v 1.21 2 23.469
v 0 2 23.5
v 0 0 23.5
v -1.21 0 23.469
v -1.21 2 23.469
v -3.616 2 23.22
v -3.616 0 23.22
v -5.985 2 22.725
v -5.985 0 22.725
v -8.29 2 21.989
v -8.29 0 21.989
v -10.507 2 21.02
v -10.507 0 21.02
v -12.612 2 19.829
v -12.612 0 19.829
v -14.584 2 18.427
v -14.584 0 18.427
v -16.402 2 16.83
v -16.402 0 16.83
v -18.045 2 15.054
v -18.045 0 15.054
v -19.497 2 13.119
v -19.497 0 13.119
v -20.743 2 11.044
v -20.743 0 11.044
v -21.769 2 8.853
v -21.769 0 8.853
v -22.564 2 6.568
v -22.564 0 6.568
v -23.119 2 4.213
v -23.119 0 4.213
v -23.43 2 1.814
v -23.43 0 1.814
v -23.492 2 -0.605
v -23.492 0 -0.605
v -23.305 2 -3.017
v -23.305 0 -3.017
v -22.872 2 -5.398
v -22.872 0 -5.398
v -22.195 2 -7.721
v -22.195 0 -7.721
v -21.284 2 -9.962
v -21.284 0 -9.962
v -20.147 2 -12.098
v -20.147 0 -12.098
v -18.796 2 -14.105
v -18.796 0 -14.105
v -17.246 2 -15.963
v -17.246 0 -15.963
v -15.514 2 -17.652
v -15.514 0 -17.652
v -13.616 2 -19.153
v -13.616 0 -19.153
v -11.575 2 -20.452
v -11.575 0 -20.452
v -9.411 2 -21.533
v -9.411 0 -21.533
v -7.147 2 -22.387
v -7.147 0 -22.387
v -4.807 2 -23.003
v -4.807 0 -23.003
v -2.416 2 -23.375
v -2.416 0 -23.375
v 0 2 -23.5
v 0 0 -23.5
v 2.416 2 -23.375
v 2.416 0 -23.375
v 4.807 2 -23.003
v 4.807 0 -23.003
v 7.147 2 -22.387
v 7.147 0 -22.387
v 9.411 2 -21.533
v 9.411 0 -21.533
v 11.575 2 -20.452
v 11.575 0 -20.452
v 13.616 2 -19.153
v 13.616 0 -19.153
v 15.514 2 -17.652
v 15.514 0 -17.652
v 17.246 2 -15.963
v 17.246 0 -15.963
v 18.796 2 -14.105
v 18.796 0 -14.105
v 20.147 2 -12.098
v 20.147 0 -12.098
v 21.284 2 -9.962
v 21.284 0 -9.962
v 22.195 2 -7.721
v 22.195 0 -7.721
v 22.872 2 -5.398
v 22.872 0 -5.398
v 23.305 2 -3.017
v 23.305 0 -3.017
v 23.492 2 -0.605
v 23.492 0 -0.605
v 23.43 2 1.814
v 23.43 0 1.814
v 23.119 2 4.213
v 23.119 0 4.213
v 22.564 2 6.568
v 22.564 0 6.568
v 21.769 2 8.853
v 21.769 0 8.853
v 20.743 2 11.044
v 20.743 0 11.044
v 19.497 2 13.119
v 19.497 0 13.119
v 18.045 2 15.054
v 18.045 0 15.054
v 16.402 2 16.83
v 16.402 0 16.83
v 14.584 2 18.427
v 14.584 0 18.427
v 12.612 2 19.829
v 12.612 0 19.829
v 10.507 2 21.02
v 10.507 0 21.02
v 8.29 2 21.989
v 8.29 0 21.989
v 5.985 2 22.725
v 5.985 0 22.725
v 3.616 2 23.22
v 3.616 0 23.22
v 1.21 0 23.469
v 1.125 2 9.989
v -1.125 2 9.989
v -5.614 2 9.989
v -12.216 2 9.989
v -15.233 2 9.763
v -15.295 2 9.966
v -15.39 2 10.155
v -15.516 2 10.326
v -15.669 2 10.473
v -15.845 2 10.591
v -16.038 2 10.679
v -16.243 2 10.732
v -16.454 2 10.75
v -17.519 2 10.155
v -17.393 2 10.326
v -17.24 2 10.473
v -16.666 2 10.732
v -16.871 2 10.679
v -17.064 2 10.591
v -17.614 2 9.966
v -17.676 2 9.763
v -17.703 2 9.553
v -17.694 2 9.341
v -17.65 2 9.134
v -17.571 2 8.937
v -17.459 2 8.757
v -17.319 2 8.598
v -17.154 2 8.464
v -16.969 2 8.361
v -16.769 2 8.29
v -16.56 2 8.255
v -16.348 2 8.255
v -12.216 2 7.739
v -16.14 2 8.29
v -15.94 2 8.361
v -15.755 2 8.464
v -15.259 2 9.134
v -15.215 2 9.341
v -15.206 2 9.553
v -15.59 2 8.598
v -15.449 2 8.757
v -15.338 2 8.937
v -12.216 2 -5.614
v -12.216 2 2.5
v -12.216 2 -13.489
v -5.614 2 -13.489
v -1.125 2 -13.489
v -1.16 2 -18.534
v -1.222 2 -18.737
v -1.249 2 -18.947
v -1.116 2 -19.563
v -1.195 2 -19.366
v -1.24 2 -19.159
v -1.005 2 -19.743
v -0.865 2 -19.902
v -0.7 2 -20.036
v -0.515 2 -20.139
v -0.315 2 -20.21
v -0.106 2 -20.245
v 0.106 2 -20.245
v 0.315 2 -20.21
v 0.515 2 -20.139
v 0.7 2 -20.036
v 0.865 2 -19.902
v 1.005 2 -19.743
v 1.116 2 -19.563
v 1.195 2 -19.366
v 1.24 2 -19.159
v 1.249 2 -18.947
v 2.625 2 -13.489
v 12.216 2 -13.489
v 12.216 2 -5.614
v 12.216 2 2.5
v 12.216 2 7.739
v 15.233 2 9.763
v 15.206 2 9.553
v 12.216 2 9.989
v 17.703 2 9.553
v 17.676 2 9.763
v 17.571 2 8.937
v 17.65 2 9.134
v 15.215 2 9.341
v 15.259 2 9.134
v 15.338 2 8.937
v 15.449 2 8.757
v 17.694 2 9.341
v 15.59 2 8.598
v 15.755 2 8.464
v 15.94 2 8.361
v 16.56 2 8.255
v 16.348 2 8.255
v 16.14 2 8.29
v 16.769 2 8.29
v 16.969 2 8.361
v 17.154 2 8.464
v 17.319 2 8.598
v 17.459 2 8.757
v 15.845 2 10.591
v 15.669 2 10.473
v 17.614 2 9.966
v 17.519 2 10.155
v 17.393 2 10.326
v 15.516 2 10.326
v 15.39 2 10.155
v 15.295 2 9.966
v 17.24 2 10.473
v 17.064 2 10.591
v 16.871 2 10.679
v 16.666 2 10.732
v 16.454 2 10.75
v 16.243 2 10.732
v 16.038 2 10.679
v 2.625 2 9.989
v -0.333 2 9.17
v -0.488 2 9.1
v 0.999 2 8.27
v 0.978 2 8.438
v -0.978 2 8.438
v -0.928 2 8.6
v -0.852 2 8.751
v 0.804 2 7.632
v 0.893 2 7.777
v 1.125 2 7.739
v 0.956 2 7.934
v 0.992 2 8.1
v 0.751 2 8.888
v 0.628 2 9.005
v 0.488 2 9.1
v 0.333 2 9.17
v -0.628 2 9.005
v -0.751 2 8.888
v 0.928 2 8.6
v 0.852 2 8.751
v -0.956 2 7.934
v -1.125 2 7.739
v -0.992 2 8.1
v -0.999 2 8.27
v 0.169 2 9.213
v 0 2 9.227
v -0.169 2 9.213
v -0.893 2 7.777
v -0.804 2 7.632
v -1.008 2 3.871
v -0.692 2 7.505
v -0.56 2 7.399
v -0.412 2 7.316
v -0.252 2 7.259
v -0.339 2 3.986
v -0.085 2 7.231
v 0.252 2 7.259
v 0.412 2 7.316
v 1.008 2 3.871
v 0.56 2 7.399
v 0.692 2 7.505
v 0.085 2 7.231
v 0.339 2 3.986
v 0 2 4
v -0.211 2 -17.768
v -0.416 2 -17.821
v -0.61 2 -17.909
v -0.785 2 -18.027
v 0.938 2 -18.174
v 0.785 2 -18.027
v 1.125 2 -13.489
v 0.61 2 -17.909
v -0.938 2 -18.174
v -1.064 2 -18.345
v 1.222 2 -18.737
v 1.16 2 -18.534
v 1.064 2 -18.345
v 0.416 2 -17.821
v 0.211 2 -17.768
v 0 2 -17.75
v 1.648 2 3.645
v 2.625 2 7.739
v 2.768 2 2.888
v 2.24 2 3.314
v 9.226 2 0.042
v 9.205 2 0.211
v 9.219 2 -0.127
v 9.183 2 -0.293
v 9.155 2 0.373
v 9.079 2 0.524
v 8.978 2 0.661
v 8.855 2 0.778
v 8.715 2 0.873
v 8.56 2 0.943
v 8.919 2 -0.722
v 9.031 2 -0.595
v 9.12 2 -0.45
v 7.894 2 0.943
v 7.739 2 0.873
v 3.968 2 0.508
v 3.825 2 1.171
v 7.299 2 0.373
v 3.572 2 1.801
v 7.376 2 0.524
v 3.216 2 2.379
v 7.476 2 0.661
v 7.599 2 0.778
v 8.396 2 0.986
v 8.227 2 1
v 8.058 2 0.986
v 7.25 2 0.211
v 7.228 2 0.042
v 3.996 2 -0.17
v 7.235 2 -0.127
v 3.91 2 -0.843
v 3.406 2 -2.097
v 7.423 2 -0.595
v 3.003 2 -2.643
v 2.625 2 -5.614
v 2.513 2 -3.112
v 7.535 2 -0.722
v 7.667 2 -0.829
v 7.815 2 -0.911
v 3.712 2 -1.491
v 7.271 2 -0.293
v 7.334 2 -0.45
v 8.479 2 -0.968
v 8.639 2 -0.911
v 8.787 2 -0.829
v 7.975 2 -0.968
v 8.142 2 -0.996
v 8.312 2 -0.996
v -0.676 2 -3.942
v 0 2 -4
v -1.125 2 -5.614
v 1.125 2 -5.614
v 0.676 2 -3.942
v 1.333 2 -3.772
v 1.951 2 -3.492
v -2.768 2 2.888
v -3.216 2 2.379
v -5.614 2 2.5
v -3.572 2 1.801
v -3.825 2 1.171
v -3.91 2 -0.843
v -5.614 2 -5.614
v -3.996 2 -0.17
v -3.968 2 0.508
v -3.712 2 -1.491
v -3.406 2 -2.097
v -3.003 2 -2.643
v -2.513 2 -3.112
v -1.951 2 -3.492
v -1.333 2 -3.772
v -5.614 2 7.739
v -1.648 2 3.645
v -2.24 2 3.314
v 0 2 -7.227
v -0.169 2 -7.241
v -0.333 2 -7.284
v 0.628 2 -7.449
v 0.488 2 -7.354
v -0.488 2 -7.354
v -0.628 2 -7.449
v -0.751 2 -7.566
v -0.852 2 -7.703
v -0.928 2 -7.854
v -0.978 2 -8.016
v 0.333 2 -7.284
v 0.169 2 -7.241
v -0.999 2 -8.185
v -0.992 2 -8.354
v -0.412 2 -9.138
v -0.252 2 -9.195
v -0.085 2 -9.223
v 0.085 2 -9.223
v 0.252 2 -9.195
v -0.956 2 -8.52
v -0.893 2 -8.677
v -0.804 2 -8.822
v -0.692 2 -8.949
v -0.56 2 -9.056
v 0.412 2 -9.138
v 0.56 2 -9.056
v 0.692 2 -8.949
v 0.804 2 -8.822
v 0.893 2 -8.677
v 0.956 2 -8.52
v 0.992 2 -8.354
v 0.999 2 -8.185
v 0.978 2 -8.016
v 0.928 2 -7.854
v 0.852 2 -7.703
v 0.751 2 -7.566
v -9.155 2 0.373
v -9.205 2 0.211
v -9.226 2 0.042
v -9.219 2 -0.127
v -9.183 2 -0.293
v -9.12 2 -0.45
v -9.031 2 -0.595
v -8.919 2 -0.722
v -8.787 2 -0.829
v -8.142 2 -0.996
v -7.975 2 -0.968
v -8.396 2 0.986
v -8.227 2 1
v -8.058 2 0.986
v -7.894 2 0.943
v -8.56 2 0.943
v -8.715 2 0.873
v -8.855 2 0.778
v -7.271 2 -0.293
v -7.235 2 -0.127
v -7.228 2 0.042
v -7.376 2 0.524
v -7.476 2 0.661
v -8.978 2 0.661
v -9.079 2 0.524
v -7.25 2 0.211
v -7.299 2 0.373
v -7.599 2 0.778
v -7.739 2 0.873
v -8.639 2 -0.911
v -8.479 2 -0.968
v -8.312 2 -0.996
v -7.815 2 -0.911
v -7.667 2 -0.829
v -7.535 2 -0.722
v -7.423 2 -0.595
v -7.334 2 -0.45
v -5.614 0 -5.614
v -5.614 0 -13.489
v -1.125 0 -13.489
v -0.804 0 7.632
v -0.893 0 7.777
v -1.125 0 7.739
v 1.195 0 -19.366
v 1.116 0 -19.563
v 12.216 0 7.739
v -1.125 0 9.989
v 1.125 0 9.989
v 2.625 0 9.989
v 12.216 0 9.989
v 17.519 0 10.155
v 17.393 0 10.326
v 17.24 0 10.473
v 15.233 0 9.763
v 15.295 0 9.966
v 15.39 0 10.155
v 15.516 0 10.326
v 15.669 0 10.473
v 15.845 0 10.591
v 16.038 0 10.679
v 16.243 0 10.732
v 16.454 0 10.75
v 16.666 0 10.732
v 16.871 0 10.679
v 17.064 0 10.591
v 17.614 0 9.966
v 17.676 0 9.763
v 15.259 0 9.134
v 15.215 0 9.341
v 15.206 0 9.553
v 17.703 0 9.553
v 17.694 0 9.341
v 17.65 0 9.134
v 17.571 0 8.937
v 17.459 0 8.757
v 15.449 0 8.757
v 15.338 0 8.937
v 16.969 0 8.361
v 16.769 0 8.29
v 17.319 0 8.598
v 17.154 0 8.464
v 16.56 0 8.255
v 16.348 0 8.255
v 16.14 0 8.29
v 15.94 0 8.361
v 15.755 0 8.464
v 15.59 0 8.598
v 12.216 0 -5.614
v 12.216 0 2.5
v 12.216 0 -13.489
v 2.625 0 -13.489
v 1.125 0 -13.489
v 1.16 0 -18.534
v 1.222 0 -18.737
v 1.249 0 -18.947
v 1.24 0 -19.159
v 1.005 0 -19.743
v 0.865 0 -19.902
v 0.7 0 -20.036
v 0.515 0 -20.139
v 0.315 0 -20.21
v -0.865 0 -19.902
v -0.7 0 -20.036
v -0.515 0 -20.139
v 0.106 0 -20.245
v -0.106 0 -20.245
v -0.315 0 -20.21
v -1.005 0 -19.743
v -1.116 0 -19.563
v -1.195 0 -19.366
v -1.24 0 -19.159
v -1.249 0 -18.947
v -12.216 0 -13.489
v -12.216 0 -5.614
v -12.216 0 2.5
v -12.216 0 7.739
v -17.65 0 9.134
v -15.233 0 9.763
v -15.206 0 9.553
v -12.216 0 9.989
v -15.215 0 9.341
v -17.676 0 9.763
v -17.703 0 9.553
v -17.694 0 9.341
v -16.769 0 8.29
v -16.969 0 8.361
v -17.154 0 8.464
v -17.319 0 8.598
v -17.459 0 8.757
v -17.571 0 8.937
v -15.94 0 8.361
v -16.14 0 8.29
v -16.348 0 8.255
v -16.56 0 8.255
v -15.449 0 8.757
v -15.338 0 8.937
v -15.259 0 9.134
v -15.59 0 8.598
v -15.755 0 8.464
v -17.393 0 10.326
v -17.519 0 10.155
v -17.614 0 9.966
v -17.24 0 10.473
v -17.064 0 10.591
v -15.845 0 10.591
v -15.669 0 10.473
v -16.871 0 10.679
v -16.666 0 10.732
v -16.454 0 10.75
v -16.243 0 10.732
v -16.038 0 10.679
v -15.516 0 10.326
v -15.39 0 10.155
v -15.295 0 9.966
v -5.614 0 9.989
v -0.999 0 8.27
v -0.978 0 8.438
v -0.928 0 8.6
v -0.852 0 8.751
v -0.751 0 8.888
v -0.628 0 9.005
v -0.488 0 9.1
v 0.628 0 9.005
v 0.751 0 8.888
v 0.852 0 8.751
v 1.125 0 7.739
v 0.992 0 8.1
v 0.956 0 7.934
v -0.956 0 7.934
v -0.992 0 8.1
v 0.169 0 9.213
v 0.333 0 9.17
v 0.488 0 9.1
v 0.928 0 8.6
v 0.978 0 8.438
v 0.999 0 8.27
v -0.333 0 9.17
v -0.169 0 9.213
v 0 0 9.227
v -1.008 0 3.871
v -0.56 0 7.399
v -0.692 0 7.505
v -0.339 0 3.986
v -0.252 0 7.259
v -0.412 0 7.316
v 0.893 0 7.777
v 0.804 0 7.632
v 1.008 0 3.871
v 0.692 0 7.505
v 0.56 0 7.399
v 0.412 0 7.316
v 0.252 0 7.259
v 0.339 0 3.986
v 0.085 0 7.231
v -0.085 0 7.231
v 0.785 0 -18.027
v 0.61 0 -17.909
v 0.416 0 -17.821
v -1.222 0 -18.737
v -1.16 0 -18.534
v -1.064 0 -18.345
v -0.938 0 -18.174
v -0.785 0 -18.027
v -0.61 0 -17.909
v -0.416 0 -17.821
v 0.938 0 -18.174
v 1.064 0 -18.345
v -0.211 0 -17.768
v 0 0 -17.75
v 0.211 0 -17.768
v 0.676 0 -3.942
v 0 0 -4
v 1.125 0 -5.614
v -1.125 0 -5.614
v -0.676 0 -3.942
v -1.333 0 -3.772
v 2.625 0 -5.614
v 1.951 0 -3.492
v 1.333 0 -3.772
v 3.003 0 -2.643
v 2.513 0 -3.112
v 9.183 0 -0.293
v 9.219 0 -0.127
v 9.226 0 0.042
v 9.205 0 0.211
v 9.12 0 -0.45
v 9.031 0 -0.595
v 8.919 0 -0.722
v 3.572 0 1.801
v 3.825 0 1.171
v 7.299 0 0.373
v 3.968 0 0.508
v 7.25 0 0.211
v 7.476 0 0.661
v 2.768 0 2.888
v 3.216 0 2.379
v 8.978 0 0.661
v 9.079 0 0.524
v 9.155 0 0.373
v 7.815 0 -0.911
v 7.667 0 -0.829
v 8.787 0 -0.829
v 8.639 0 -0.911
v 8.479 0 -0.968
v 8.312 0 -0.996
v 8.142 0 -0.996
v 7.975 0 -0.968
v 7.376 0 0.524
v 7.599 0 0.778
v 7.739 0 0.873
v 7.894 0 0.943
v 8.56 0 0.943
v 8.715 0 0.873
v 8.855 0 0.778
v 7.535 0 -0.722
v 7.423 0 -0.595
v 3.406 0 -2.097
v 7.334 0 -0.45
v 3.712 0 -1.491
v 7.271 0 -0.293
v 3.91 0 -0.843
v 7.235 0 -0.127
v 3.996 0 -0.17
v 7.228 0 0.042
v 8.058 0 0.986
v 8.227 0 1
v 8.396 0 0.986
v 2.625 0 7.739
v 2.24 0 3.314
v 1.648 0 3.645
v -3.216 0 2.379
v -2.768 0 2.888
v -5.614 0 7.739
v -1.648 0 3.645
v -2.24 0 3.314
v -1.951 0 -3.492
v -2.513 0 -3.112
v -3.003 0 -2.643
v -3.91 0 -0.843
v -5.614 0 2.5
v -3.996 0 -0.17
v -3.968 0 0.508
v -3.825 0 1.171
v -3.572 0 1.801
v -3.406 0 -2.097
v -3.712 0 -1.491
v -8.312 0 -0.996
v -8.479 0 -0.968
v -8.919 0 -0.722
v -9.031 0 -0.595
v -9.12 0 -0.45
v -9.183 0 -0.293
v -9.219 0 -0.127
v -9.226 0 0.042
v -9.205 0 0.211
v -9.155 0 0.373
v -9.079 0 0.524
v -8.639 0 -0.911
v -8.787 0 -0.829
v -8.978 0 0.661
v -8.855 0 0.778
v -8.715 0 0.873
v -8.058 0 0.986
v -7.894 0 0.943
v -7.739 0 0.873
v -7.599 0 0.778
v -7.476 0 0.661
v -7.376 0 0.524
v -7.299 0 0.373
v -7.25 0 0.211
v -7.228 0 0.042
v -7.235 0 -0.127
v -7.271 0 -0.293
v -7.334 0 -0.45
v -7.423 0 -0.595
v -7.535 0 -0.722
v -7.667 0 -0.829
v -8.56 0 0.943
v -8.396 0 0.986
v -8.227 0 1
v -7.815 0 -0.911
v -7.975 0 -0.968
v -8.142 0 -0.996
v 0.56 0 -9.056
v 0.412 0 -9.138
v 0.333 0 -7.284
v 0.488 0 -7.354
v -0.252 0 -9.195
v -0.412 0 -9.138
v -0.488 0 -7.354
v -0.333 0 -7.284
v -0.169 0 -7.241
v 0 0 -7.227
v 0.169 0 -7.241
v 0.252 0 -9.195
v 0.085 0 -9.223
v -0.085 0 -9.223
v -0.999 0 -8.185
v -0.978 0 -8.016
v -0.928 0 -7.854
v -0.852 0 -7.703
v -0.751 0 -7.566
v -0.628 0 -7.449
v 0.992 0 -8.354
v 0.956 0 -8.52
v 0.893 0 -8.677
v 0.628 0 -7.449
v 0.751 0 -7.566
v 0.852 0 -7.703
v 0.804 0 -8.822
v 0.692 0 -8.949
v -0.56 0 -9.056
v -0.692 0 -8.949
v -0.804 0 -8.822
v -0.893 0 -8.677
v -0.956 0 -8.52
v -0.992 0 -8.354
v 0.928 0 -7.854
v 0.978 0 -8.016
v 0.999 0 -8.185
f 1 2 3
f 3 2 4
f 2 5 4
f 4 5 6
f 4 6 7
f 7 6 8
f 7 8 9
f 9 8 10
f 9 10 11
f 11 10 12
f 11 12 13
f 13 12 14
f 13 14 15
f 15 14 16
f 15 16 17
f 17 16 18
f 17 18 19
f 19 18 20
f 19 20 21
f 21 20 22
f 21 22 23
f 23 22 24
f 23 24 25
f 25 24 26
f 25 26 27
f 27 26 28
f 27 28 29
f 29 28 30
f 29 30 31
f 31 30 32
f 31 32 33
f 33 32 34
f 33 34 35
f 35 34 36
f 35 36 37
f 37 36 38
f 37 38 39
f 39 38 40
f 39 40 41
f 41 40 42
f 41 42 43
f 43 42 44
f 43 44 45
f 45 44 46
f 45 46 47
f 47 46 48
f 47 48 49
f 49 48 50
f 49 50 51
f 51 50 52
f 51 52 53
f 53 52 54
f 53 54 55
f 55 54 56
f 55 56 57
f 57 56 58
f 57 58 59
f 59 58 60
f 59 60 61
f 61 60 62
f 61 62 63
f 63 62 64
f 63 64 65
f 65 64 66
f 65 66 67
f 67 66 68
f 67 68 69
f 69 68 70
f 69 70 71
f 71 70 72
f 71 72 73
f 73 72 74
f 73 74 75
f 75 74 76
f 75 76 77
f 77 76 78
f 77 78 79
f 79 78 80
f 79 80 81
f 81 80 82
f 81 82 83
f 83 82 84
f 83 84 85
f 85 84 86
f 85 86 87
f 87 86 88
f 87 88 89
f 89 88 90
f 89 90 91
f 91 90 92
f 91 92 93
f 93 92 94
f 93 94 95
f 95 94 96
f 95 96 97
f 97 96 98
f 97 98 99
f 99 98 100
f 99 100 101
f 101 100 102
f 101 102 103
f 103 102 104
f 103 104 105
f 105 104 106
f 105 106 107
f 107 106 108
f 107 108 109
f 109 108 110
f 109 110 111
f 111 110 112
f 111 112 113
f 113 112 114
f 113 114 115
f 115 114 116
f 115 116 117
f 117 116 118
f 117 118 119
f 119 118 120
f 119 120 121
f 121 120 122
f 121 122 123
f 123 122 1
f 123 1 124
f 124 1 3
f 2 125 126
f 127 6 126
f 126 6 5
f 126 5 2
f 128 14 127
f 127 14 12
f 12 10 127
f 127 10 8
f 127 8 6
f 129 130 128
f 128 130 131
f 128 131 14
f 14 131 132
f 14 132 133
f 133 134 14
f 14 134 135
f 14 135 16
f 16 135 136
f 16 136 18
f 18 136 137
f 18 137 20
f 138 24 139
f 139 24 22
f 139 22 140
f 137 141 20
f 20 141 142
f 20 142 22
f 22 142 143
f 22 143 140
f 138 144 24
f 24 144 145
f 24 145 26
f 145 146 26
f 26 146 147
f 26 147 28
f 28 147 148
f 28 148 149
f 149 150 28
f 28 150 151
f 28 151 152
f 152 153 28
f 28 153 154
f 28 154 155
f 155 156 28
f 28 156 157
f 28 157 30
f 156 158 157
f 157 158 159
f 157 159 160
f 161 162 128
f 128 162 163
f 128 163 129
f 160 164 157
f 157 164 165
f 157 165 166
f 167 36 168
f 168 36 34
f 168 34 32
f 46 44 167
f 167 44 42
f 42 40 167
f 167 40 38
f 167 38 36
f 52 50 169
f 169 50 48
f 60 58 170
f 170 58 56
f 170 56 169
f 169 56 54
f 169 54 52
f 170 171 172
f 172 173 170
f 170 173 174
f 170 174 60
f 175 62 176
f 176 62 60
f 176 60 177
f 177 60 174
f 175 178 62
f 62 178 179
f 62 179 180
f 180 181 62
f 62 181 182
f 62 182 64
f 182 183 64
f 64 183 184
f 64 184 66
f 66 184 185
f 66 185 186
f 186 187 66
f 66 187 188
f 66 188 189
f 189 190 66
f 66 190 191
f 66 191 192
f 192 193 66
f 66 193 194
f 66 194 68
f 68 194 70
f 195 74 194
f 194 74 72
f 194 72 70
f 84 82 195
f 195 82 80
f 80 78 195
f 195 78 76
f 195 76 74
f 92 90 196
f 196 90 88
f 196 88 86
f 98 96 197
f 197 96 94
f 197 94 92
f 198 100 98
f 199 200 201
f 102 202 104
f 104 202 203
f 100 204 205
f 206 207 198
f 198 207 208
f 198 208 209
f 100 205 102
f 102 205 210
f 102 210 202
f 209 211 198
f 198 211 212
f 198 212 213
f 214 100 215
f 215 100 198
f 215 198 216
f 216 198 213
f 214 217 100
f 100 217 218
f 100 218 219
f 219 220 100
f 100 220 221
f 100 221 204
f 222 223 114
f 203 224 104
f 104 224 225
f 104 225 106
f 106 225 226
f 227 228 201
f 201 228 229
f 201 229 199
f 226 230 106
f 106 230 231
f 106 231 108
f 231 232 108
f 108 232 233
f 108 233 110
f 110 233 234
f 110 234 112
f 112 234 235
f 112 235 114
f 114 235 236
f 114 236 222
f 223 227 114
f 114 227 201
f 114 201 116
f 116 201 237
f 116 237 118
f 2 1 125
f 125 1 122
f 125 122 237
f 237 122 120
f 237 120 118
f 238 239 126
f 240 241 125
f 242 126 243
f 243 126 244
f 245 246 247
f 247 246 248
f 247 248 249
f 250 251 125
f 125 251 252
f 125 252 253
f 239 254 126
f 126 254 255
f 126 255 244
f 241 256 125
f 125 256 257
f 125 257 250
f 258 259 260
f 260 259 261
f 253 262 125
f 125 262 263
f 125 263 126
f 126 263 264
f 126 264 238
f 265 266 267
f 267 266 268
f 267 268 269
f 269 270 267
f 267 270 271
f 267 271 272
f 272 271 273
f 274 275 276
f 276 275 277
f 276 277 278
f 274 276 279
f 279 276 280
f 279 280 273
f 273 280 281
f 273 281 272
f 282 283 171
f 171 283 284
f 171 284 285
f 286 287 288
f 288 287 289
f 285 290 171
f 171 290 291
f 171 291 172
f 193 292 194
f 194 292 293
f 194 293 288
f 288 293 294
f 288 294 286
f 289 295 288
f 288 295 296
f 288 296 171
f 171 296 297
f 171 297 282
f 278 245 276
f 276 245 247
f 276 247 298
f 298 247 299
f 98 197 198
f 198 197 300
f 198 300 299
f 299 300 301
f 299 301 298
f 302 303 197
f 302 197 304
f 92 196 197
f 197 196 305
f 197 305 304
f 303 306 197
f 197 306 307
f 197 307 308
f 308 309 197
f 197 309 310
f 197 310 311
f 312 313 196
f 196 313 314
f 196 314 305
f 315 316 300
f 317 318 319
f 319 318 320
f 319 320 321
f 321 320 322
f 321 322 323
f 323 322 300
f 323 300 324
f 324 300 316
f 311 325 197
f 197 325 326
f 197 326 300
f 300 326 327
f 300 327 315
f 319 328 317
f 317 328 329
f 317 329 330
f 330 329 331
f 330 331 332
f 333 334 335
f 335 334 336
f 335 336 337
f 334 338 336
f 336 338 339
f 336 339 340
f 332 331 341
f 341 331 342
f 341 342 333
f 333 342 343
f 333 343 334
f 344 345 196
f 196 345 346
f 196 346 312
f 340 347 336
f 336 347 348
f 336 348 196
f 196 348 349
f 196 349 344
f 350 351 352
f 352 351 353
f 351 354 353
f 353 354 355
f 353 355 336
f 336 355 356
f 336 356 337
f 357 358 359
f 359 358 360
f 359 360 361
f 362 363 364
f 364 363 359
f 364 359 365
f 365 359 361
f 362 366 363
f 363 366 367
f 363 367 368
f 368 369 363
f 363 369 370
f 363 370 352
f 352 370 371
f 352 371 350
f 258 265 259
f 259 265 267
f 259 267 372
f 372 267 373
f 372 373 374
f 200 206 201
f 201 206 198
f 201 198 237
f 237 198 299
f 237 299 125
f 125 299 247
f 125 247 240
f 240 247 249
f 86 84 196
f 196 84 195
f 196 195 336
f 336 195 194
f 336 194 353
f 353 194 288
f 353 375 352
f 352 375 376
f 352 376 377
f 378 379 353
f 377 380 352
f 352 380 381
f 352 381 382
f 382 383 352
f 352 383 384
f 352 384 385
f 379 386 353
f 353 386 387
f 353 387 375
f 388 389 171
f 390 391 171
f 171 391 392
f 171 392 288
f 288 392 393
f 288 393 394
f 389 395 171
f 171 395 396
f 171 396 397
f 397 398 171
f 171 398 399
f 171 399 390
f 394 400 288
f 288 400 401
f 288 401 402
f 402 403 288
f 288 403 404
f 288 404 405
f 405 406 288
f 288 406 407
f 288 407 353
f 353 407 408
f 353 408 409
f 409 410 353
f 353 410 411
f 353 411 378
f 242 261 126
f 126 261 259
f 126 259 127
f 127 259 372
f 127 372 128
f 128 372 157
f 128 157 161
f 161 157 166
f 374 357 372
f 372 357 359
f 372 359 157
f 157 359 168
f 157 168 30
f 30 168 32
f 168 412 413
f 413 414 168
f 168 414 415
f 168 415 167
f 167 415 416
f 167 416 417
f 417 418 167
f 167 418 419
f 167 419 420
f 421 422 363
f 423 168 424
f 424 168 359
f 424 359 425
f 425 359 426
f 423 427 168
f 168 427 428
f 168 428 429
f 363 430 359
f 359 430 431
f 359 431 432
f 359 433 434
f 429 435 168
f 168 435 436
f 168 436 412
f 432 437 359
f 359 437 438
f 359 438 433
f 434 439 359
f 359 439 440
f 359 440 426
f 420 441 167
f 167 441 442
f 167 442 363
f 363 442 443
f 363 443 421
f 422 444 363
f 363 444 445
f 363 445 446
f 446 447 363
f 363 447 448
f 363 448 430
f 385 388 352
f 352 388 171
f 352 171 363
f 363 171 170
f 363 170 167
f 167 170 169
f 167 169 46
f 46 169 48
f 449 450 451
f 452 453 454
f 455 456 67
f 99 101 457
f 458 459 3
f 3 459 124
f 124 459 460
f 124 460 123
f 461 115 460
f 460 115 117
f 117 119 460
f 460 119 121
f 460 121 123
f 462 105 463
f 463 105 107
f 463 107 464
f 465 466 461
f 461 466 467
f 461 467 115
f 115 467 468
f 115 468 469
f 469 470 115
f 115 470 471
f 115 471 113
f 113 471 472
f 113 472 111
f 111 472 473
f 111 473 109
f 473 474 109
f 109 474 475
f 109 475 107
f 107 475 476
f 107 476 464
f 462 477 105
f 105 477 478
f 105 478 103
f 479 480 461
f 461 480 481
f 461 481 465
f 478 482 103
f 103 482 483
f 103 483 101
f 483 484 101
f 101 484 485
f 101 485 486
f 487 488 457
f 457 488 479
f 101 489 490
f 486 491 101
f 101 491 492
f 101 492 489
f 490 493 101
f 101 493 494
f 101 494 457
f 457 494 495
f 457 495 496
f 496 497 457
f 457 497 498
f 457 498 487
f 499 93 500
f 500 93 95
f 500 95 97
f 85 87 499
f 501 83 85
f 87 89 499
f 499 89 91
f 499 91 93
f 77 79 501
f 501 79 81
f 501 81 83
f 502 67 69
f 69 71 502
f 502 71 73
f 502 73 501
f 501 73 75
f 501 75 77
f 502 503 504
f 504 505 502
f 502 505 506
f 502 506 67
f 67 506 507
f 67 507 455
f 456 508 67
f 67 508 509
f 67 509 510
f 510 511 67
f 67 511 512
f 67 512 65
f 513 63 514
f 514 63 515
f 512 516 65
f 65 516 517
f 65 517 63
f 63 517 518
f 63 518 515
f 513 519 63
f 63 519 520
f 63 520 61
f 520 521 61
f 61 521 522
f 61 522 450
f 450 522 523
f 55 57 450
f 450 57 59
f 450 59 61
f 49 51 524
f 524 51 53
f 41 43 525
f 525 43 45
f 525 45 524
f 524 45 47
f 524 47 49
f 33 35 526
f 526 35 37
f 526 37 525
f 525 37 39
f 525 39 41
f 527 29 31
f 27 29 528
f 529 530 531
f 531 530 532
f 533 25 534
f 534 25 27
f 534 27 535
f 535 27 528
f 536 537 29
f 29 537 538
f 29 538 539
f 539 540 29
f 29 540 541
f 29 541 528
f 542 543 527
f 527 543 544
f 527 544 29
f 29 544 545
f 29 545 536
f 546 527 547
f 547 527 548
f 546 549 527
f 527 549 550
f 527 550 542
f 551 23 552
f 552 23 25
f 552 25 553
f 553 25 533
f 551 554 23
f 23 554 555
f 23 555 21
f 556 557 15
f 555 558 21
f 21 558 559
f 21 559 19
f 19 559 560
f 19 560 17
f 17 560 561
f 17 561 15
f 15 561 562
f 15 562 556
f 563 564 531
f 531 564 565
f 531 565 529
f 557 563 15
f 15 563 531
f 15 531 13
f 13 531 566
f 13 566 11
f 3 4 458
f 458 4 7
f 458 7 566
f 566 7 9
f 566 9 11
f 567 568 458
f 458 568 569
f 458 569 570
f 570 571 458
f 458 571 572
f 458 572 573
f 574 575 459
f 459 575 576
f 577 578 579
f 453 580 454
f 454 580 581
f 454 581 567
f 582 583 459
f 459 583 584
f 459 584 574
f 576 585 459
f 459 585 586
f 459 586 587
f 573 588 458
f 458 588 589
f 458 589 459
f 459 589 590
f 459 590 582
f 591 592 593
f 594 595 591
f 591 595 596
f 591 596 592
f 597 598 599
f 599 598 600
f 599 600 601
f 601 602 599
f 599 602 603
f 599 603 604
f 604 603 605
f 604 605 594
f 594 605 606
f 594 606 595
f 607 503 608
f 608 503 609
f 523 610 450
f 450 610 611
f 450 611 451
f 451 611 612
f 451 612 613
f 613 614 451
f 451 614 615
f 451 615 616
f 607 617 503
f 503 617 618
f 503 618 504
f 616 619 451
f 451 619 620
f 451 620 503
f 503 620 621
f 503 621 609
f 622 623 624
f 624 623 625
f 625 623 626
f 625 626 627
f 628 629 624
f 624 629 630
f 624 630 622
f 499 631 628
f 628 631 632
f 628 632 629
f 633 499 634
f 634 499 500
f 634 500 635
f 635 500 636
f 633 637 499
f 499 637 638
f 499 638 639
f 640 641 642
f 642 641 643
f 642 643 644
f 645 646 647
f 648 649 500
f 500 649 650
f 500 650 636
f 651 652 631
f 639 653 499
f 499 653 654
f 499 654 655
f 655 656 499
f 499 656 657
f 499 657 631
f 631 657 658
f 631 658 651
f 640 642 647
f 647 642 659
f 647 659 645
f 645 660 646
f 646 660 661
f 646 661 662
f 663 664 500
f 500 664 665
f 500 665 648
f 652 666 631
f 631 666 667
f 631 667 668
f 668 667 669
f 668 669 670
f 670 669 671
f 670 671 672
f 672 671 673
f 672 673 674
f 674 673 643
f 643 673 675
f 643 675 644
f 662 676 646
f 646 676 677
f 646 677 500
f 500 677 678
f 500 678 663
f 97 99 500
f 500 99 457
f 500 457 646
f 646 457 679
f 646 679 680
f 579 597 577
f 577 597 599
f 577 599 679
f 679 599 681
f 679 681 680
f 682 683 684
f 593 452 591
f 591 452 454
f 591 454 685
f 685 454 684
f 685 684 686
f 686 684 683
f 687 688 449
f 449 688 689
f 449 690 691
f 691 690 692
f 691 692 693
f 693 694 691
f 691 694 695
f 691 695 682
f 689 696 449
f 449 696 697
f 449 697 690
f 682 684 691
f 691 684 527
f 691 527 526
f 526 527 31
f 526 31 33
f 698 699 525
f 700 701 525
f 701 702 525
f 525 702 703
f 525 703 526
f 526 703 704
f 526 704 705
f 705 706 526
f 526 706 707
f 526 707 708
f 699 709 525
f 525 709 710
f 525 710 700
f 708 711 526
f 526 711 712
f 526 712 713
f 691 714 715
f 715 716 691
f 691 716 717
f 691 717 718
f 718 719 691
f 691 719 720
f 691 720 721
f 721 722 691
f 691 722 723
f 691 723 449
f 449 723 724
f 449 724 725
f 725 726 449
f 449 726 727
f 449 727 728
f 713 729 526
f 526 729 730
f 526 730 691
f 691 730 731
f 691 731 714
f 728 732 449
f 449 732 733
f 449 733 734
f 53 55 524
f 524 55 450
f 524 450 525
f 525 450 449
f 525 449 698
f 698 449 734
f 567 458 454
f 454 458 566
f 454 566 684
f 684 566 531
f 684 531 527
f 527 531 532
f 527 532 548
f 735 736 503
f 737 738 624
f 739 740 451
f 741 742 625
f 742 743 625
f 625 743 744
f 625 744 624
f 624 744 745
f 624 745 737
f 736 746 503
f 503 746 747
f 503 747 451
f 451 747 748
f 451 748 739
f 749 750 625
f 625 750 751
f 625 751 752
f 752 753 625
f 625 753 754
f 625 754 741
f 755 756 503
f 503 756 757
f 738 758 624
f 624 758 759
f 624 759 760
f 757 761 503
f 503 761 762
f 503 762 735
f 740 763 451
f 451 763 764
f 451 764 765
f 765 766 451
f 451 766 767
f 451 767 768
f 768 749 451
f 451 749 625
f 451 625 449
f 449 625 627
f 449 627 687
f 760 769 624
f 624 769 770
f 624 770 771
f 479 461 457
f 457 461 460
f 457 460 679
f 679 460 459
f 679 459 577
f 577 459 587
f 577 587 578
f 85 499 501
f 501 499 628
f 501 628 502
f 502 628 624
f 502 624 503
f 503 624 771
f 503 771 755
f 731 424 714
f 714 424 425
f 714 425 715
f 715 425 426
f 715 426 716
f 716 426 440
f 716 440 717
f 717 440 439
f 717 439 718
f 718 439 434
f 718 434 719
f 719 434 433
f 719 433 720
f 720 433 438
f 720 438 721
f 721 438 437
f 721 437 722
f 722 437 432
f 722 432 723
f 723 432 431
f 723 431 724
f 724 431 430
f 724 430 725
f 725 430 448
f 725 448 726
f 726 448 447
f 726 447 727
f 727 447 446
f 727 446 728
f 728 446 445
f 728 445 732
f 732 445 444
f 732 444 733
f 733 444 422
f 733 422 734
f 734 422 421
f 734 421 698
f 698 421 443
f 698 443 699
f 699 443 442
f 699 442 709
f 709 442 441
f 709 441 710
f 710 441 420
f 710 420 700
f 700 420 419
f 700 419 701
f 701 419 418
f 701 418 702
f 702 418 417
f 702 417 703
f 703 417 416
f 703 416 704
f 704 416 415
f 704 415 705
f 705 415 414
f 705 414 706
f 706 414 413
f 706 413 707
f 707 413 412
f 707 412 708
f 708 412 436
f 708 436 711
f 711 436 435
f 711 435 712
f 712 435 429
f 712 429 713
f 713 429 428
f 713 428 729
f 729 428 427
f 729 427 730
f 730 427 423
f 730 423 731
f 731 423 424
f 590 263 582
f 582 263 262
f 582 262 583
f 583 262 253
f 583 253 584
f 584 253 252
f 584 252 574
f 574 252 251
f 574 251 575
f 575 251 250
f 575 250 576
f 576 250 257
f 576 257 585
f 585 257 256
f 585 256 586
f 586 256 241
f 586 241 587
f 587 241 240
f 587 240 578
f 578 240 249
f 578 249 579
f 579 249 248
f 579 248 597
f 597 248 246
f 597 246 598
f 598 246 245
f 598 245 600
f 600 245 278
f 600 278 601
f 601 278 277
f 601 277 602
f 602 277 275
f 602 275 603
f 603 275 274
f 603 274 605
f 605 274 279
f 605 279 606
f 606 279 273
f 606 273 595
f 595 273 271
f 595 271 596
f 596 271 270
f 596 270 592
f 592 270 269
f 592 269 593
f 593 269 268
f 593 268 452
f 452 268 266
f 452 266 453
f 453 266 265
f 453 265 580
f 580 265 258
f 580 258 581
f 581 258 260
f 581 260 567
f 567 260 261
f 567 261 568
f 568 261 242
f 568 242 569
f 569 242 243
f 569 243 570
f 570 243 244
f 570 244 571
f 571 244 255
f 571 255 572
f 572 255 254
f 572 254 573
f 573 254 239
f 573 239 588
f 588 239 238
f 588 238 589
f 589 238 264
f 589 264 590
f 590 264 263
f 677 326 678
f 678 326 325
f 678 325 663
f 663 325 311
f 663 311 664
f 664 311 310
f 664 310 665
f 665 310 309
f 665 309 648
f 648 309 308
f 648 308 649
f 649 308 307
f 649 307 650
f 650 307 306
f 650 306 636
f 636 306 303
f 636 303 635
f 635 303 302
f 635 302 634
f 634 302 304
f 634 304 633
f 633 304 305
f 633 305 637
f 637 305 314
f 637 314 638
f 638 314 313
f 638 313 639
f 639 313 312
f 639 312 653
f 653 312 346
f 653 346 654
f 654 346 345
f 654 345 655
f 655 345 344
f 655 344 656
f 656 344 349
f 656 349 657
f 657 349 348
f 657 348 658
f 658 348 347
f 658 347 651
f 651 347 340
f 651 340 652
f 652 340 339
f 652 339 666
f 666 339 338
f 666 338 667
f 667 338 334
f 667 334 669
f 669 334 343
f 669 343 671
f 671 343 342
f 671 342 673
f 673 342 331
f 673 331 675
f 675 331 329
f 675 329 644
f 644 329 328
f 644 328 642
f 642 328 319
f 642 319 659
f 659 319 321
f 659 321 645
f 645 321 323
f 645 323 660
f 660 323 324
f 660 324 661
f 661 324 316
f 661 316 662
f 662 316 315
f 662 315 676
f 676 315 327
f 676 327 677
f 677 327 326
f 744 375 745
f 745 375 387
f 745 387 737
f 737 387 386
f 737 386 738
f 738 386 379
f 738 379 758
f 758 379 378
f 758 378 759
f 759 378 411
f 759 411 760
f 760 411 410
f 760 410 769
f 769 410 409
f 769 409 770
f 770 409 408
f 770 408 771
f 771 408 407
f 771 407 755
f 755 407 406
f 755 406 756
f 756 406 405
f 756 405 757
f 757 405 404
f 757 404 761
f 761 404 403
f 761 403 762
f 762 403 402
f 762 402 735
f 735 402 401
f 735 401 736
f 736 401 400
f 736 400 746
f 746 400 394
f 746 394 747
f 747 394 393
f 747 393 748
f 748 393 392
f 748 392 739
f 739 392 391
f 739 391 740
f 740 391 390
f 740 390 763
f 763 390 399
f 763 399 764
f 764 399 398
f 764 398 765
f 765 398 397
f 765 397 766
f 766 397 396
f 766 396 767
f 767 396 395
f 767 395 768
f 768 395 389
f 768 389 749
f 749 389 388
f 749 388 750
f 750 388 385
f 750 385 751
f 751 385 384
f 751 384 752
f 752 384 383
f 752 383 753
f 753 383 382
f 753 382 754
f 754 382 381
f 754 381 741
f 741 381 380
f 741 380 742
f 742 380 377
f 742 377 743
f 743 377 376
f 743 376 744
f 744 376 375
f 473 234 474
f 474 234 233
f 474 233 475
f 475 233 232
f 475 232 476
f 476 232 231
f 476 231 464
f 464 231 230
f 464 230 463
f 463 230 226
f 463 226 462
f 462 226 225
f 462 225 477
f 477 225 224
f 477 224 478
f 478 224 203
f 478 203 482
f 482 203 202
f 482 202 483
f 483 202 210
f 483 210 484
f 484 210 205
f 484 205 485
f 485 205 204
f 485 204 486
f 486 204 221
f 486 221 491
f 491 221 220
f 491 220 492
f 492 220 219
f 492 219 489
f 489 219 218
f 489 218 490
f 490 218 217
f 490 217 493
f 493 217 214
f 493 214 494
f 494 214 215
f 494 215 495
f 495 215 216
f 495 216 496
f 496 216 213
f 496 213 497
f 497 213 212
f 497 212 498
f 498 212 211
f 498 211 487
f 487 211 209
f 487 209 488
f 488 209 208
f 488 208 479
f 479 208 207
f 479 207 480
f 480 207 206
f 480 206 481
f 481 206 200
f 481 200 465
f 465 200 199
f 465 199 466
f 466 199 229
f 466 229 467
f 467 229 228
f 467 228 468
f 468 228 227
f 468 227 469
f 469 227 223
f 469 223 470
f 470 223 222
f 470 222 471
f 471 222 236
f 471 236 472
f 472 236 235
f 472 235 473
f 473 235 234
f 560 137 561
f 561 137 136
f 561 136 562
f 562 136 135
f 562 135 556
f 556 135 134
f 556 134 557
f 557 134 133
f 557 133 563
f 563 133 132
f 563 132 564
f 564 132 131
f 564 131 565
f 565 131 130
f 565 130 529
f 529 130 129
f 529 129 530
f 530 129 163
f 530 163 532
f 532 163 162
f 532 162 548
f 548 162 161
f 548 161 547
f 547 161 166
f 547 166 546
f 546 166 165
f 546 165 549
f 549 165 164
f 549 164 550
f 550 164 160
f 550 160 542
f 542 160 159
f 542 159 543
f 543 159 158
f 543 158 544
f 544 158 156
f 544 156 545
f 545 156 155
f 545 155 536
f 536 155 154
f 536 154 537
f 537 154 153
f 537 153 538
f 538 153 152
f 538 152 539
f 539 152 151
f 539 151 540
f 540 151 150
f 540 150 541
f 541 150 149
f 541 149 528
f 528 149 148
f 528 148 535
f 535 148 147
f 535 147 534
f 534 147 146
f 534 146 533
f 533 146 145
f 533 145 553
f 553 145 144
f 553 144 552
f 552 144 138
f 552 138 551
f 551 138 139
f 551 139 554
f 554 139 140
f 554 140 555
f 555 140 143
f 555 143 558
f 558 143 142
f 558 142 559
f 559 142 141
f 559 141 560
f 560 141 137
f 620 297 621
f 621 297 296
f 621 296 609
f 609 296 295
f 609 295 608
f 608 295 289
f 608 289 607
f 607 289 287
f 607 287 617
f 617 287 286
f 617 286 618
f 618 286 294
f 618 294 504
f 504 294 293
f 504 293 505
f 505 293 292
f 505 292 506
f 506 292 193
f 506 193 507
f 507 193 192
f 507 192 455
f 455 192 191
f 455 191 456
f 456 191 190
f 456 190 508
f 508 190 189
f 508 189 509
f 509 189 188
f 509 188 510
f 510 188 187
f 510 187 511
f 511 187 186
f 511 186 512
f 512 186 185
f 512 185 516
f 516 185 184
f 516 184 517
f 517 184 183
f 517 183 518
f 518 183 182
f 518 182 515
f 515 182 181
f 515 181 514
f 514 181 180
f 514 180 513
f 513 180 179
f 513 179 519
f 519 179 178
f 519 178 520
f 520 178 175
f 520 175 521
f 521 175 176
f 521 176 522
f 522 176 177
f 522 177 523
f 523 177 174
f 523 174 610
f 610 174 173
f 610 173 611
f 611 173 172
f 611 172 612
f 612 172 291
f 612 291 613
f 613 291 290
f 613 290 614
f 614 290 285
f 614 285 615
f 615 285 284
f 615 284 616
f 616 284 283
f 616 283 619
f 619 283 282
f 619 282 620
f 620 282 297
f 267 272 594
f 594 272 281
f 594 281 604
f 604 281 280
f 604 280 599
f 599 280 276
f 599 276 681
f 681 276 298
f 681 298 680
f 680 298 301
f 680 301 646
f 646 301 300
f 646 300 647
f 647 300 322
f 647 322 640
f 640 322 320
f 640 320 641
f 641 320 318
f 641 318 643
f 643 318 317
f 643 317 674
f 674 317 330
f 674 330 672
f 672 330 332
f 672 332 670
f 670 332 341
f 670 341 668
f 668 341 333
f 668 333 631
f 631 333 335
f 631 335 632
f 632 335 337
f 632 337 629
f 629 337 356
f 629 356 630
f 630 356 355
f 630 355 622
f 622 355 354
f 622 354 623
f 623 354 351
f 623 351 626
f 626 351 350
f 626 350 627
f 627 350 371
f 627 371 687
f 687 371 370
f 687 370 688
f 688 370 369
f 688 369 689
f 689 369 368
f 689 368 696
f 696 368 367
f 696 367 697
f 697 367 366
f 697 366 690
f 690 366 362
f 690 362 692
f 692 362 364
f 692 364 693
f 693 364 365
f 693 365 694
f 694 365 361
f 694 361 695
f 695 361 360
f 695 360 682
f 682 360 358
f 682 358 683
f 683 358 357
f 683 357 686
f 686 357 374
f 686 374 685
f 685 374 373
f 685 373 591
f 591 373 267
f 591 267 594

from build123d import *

# Parameters (mm, degrees)
SKETCH1_R           = 23.5
BOSS_EXTRUDE1_DEPTH = 2
SKETCH2_R           = 1
SKETCH2_R_2         = 1.25
CUT_EXTRUDE1_DEPTH  = 34.294143629
CUT_EXTRUDE2_REACH  = 35.294
SKETCH3_R           = 4


with BuildPart() as part:
    # Sketch1 → Boss-Extrude1 (new body)
    with BuildSketch(Plane(origin=(0, 0, 0), x_dir=(1, 0, 0), z_dir=(0, 1, 0))):
        with Locations(Location((0, 0, 0), (0, 0, 270))):
            Circle(SKETCH1_R)
    extrude(amount=BOSS_EXTRUDE1_DEPTH)

    # Sketch2 → Cut-Extrude1 (cut, through all)
    with BuildSketch(Plane(origin=(0, 2, 0), x_dir=(1, 0, 0), z_dir=(0, 1, 0))):
        with Locations(Location((0, 8.227062517, 0), (0, 0, 270))):
            Circle(SKETCH2_R)
        with Locations(Location((8.227062517, 0, 0), (0, 0, 270))):
            Circle(SKETCH2_R)
        with Locations(Location((0, -8.227062517, 0), (0, 0, 270))):
            Circle(SKETCH2_R)
        with Locations(Location((-8.227062517, 0, 0), (0, 0, 270))):
            Circle(SKETCH2_R)
        with Locations(Location((0, 19, 0), (0, 0, 270))):
            Circle(SKETCH2_R_2)
        with Locations(Location((16.454482672, -9.5, 0), (0, 0, 270))):
            Circle(SKETCH2_R_2)
        with Locations(Location((-16.454482672, -9.5, 0), (0, 0, 270))):
            Circle(SKETCH2_R_2)
    extrude(amount=-CUT_EXTRUDE1_DEPTH, mode=Mode.SUBTRACT)

    # Sketch3 → Cut-Extrude2 (cut, up to next)
    with BuildSketch(Plane.XZ, mode=Mode.PRIVATE) as cut_extrude2_sk1:
        with Locations(Location((0, 0, 0), (0, 0, 270))):
            Circle(SKETCH3_R)
    cut_extrude2_tool1 = extrude(cut_extrude2_sk1.sketch, amount=-CUT_EXTRUDE2_REACH, mode=Mode.PRIVATE) & part.part
    add(cut_extrude2_tool1.solids().sort_by_distance((0, 0, 0))[0], mode=Mode.SUBTRACT)


solid = part.part
